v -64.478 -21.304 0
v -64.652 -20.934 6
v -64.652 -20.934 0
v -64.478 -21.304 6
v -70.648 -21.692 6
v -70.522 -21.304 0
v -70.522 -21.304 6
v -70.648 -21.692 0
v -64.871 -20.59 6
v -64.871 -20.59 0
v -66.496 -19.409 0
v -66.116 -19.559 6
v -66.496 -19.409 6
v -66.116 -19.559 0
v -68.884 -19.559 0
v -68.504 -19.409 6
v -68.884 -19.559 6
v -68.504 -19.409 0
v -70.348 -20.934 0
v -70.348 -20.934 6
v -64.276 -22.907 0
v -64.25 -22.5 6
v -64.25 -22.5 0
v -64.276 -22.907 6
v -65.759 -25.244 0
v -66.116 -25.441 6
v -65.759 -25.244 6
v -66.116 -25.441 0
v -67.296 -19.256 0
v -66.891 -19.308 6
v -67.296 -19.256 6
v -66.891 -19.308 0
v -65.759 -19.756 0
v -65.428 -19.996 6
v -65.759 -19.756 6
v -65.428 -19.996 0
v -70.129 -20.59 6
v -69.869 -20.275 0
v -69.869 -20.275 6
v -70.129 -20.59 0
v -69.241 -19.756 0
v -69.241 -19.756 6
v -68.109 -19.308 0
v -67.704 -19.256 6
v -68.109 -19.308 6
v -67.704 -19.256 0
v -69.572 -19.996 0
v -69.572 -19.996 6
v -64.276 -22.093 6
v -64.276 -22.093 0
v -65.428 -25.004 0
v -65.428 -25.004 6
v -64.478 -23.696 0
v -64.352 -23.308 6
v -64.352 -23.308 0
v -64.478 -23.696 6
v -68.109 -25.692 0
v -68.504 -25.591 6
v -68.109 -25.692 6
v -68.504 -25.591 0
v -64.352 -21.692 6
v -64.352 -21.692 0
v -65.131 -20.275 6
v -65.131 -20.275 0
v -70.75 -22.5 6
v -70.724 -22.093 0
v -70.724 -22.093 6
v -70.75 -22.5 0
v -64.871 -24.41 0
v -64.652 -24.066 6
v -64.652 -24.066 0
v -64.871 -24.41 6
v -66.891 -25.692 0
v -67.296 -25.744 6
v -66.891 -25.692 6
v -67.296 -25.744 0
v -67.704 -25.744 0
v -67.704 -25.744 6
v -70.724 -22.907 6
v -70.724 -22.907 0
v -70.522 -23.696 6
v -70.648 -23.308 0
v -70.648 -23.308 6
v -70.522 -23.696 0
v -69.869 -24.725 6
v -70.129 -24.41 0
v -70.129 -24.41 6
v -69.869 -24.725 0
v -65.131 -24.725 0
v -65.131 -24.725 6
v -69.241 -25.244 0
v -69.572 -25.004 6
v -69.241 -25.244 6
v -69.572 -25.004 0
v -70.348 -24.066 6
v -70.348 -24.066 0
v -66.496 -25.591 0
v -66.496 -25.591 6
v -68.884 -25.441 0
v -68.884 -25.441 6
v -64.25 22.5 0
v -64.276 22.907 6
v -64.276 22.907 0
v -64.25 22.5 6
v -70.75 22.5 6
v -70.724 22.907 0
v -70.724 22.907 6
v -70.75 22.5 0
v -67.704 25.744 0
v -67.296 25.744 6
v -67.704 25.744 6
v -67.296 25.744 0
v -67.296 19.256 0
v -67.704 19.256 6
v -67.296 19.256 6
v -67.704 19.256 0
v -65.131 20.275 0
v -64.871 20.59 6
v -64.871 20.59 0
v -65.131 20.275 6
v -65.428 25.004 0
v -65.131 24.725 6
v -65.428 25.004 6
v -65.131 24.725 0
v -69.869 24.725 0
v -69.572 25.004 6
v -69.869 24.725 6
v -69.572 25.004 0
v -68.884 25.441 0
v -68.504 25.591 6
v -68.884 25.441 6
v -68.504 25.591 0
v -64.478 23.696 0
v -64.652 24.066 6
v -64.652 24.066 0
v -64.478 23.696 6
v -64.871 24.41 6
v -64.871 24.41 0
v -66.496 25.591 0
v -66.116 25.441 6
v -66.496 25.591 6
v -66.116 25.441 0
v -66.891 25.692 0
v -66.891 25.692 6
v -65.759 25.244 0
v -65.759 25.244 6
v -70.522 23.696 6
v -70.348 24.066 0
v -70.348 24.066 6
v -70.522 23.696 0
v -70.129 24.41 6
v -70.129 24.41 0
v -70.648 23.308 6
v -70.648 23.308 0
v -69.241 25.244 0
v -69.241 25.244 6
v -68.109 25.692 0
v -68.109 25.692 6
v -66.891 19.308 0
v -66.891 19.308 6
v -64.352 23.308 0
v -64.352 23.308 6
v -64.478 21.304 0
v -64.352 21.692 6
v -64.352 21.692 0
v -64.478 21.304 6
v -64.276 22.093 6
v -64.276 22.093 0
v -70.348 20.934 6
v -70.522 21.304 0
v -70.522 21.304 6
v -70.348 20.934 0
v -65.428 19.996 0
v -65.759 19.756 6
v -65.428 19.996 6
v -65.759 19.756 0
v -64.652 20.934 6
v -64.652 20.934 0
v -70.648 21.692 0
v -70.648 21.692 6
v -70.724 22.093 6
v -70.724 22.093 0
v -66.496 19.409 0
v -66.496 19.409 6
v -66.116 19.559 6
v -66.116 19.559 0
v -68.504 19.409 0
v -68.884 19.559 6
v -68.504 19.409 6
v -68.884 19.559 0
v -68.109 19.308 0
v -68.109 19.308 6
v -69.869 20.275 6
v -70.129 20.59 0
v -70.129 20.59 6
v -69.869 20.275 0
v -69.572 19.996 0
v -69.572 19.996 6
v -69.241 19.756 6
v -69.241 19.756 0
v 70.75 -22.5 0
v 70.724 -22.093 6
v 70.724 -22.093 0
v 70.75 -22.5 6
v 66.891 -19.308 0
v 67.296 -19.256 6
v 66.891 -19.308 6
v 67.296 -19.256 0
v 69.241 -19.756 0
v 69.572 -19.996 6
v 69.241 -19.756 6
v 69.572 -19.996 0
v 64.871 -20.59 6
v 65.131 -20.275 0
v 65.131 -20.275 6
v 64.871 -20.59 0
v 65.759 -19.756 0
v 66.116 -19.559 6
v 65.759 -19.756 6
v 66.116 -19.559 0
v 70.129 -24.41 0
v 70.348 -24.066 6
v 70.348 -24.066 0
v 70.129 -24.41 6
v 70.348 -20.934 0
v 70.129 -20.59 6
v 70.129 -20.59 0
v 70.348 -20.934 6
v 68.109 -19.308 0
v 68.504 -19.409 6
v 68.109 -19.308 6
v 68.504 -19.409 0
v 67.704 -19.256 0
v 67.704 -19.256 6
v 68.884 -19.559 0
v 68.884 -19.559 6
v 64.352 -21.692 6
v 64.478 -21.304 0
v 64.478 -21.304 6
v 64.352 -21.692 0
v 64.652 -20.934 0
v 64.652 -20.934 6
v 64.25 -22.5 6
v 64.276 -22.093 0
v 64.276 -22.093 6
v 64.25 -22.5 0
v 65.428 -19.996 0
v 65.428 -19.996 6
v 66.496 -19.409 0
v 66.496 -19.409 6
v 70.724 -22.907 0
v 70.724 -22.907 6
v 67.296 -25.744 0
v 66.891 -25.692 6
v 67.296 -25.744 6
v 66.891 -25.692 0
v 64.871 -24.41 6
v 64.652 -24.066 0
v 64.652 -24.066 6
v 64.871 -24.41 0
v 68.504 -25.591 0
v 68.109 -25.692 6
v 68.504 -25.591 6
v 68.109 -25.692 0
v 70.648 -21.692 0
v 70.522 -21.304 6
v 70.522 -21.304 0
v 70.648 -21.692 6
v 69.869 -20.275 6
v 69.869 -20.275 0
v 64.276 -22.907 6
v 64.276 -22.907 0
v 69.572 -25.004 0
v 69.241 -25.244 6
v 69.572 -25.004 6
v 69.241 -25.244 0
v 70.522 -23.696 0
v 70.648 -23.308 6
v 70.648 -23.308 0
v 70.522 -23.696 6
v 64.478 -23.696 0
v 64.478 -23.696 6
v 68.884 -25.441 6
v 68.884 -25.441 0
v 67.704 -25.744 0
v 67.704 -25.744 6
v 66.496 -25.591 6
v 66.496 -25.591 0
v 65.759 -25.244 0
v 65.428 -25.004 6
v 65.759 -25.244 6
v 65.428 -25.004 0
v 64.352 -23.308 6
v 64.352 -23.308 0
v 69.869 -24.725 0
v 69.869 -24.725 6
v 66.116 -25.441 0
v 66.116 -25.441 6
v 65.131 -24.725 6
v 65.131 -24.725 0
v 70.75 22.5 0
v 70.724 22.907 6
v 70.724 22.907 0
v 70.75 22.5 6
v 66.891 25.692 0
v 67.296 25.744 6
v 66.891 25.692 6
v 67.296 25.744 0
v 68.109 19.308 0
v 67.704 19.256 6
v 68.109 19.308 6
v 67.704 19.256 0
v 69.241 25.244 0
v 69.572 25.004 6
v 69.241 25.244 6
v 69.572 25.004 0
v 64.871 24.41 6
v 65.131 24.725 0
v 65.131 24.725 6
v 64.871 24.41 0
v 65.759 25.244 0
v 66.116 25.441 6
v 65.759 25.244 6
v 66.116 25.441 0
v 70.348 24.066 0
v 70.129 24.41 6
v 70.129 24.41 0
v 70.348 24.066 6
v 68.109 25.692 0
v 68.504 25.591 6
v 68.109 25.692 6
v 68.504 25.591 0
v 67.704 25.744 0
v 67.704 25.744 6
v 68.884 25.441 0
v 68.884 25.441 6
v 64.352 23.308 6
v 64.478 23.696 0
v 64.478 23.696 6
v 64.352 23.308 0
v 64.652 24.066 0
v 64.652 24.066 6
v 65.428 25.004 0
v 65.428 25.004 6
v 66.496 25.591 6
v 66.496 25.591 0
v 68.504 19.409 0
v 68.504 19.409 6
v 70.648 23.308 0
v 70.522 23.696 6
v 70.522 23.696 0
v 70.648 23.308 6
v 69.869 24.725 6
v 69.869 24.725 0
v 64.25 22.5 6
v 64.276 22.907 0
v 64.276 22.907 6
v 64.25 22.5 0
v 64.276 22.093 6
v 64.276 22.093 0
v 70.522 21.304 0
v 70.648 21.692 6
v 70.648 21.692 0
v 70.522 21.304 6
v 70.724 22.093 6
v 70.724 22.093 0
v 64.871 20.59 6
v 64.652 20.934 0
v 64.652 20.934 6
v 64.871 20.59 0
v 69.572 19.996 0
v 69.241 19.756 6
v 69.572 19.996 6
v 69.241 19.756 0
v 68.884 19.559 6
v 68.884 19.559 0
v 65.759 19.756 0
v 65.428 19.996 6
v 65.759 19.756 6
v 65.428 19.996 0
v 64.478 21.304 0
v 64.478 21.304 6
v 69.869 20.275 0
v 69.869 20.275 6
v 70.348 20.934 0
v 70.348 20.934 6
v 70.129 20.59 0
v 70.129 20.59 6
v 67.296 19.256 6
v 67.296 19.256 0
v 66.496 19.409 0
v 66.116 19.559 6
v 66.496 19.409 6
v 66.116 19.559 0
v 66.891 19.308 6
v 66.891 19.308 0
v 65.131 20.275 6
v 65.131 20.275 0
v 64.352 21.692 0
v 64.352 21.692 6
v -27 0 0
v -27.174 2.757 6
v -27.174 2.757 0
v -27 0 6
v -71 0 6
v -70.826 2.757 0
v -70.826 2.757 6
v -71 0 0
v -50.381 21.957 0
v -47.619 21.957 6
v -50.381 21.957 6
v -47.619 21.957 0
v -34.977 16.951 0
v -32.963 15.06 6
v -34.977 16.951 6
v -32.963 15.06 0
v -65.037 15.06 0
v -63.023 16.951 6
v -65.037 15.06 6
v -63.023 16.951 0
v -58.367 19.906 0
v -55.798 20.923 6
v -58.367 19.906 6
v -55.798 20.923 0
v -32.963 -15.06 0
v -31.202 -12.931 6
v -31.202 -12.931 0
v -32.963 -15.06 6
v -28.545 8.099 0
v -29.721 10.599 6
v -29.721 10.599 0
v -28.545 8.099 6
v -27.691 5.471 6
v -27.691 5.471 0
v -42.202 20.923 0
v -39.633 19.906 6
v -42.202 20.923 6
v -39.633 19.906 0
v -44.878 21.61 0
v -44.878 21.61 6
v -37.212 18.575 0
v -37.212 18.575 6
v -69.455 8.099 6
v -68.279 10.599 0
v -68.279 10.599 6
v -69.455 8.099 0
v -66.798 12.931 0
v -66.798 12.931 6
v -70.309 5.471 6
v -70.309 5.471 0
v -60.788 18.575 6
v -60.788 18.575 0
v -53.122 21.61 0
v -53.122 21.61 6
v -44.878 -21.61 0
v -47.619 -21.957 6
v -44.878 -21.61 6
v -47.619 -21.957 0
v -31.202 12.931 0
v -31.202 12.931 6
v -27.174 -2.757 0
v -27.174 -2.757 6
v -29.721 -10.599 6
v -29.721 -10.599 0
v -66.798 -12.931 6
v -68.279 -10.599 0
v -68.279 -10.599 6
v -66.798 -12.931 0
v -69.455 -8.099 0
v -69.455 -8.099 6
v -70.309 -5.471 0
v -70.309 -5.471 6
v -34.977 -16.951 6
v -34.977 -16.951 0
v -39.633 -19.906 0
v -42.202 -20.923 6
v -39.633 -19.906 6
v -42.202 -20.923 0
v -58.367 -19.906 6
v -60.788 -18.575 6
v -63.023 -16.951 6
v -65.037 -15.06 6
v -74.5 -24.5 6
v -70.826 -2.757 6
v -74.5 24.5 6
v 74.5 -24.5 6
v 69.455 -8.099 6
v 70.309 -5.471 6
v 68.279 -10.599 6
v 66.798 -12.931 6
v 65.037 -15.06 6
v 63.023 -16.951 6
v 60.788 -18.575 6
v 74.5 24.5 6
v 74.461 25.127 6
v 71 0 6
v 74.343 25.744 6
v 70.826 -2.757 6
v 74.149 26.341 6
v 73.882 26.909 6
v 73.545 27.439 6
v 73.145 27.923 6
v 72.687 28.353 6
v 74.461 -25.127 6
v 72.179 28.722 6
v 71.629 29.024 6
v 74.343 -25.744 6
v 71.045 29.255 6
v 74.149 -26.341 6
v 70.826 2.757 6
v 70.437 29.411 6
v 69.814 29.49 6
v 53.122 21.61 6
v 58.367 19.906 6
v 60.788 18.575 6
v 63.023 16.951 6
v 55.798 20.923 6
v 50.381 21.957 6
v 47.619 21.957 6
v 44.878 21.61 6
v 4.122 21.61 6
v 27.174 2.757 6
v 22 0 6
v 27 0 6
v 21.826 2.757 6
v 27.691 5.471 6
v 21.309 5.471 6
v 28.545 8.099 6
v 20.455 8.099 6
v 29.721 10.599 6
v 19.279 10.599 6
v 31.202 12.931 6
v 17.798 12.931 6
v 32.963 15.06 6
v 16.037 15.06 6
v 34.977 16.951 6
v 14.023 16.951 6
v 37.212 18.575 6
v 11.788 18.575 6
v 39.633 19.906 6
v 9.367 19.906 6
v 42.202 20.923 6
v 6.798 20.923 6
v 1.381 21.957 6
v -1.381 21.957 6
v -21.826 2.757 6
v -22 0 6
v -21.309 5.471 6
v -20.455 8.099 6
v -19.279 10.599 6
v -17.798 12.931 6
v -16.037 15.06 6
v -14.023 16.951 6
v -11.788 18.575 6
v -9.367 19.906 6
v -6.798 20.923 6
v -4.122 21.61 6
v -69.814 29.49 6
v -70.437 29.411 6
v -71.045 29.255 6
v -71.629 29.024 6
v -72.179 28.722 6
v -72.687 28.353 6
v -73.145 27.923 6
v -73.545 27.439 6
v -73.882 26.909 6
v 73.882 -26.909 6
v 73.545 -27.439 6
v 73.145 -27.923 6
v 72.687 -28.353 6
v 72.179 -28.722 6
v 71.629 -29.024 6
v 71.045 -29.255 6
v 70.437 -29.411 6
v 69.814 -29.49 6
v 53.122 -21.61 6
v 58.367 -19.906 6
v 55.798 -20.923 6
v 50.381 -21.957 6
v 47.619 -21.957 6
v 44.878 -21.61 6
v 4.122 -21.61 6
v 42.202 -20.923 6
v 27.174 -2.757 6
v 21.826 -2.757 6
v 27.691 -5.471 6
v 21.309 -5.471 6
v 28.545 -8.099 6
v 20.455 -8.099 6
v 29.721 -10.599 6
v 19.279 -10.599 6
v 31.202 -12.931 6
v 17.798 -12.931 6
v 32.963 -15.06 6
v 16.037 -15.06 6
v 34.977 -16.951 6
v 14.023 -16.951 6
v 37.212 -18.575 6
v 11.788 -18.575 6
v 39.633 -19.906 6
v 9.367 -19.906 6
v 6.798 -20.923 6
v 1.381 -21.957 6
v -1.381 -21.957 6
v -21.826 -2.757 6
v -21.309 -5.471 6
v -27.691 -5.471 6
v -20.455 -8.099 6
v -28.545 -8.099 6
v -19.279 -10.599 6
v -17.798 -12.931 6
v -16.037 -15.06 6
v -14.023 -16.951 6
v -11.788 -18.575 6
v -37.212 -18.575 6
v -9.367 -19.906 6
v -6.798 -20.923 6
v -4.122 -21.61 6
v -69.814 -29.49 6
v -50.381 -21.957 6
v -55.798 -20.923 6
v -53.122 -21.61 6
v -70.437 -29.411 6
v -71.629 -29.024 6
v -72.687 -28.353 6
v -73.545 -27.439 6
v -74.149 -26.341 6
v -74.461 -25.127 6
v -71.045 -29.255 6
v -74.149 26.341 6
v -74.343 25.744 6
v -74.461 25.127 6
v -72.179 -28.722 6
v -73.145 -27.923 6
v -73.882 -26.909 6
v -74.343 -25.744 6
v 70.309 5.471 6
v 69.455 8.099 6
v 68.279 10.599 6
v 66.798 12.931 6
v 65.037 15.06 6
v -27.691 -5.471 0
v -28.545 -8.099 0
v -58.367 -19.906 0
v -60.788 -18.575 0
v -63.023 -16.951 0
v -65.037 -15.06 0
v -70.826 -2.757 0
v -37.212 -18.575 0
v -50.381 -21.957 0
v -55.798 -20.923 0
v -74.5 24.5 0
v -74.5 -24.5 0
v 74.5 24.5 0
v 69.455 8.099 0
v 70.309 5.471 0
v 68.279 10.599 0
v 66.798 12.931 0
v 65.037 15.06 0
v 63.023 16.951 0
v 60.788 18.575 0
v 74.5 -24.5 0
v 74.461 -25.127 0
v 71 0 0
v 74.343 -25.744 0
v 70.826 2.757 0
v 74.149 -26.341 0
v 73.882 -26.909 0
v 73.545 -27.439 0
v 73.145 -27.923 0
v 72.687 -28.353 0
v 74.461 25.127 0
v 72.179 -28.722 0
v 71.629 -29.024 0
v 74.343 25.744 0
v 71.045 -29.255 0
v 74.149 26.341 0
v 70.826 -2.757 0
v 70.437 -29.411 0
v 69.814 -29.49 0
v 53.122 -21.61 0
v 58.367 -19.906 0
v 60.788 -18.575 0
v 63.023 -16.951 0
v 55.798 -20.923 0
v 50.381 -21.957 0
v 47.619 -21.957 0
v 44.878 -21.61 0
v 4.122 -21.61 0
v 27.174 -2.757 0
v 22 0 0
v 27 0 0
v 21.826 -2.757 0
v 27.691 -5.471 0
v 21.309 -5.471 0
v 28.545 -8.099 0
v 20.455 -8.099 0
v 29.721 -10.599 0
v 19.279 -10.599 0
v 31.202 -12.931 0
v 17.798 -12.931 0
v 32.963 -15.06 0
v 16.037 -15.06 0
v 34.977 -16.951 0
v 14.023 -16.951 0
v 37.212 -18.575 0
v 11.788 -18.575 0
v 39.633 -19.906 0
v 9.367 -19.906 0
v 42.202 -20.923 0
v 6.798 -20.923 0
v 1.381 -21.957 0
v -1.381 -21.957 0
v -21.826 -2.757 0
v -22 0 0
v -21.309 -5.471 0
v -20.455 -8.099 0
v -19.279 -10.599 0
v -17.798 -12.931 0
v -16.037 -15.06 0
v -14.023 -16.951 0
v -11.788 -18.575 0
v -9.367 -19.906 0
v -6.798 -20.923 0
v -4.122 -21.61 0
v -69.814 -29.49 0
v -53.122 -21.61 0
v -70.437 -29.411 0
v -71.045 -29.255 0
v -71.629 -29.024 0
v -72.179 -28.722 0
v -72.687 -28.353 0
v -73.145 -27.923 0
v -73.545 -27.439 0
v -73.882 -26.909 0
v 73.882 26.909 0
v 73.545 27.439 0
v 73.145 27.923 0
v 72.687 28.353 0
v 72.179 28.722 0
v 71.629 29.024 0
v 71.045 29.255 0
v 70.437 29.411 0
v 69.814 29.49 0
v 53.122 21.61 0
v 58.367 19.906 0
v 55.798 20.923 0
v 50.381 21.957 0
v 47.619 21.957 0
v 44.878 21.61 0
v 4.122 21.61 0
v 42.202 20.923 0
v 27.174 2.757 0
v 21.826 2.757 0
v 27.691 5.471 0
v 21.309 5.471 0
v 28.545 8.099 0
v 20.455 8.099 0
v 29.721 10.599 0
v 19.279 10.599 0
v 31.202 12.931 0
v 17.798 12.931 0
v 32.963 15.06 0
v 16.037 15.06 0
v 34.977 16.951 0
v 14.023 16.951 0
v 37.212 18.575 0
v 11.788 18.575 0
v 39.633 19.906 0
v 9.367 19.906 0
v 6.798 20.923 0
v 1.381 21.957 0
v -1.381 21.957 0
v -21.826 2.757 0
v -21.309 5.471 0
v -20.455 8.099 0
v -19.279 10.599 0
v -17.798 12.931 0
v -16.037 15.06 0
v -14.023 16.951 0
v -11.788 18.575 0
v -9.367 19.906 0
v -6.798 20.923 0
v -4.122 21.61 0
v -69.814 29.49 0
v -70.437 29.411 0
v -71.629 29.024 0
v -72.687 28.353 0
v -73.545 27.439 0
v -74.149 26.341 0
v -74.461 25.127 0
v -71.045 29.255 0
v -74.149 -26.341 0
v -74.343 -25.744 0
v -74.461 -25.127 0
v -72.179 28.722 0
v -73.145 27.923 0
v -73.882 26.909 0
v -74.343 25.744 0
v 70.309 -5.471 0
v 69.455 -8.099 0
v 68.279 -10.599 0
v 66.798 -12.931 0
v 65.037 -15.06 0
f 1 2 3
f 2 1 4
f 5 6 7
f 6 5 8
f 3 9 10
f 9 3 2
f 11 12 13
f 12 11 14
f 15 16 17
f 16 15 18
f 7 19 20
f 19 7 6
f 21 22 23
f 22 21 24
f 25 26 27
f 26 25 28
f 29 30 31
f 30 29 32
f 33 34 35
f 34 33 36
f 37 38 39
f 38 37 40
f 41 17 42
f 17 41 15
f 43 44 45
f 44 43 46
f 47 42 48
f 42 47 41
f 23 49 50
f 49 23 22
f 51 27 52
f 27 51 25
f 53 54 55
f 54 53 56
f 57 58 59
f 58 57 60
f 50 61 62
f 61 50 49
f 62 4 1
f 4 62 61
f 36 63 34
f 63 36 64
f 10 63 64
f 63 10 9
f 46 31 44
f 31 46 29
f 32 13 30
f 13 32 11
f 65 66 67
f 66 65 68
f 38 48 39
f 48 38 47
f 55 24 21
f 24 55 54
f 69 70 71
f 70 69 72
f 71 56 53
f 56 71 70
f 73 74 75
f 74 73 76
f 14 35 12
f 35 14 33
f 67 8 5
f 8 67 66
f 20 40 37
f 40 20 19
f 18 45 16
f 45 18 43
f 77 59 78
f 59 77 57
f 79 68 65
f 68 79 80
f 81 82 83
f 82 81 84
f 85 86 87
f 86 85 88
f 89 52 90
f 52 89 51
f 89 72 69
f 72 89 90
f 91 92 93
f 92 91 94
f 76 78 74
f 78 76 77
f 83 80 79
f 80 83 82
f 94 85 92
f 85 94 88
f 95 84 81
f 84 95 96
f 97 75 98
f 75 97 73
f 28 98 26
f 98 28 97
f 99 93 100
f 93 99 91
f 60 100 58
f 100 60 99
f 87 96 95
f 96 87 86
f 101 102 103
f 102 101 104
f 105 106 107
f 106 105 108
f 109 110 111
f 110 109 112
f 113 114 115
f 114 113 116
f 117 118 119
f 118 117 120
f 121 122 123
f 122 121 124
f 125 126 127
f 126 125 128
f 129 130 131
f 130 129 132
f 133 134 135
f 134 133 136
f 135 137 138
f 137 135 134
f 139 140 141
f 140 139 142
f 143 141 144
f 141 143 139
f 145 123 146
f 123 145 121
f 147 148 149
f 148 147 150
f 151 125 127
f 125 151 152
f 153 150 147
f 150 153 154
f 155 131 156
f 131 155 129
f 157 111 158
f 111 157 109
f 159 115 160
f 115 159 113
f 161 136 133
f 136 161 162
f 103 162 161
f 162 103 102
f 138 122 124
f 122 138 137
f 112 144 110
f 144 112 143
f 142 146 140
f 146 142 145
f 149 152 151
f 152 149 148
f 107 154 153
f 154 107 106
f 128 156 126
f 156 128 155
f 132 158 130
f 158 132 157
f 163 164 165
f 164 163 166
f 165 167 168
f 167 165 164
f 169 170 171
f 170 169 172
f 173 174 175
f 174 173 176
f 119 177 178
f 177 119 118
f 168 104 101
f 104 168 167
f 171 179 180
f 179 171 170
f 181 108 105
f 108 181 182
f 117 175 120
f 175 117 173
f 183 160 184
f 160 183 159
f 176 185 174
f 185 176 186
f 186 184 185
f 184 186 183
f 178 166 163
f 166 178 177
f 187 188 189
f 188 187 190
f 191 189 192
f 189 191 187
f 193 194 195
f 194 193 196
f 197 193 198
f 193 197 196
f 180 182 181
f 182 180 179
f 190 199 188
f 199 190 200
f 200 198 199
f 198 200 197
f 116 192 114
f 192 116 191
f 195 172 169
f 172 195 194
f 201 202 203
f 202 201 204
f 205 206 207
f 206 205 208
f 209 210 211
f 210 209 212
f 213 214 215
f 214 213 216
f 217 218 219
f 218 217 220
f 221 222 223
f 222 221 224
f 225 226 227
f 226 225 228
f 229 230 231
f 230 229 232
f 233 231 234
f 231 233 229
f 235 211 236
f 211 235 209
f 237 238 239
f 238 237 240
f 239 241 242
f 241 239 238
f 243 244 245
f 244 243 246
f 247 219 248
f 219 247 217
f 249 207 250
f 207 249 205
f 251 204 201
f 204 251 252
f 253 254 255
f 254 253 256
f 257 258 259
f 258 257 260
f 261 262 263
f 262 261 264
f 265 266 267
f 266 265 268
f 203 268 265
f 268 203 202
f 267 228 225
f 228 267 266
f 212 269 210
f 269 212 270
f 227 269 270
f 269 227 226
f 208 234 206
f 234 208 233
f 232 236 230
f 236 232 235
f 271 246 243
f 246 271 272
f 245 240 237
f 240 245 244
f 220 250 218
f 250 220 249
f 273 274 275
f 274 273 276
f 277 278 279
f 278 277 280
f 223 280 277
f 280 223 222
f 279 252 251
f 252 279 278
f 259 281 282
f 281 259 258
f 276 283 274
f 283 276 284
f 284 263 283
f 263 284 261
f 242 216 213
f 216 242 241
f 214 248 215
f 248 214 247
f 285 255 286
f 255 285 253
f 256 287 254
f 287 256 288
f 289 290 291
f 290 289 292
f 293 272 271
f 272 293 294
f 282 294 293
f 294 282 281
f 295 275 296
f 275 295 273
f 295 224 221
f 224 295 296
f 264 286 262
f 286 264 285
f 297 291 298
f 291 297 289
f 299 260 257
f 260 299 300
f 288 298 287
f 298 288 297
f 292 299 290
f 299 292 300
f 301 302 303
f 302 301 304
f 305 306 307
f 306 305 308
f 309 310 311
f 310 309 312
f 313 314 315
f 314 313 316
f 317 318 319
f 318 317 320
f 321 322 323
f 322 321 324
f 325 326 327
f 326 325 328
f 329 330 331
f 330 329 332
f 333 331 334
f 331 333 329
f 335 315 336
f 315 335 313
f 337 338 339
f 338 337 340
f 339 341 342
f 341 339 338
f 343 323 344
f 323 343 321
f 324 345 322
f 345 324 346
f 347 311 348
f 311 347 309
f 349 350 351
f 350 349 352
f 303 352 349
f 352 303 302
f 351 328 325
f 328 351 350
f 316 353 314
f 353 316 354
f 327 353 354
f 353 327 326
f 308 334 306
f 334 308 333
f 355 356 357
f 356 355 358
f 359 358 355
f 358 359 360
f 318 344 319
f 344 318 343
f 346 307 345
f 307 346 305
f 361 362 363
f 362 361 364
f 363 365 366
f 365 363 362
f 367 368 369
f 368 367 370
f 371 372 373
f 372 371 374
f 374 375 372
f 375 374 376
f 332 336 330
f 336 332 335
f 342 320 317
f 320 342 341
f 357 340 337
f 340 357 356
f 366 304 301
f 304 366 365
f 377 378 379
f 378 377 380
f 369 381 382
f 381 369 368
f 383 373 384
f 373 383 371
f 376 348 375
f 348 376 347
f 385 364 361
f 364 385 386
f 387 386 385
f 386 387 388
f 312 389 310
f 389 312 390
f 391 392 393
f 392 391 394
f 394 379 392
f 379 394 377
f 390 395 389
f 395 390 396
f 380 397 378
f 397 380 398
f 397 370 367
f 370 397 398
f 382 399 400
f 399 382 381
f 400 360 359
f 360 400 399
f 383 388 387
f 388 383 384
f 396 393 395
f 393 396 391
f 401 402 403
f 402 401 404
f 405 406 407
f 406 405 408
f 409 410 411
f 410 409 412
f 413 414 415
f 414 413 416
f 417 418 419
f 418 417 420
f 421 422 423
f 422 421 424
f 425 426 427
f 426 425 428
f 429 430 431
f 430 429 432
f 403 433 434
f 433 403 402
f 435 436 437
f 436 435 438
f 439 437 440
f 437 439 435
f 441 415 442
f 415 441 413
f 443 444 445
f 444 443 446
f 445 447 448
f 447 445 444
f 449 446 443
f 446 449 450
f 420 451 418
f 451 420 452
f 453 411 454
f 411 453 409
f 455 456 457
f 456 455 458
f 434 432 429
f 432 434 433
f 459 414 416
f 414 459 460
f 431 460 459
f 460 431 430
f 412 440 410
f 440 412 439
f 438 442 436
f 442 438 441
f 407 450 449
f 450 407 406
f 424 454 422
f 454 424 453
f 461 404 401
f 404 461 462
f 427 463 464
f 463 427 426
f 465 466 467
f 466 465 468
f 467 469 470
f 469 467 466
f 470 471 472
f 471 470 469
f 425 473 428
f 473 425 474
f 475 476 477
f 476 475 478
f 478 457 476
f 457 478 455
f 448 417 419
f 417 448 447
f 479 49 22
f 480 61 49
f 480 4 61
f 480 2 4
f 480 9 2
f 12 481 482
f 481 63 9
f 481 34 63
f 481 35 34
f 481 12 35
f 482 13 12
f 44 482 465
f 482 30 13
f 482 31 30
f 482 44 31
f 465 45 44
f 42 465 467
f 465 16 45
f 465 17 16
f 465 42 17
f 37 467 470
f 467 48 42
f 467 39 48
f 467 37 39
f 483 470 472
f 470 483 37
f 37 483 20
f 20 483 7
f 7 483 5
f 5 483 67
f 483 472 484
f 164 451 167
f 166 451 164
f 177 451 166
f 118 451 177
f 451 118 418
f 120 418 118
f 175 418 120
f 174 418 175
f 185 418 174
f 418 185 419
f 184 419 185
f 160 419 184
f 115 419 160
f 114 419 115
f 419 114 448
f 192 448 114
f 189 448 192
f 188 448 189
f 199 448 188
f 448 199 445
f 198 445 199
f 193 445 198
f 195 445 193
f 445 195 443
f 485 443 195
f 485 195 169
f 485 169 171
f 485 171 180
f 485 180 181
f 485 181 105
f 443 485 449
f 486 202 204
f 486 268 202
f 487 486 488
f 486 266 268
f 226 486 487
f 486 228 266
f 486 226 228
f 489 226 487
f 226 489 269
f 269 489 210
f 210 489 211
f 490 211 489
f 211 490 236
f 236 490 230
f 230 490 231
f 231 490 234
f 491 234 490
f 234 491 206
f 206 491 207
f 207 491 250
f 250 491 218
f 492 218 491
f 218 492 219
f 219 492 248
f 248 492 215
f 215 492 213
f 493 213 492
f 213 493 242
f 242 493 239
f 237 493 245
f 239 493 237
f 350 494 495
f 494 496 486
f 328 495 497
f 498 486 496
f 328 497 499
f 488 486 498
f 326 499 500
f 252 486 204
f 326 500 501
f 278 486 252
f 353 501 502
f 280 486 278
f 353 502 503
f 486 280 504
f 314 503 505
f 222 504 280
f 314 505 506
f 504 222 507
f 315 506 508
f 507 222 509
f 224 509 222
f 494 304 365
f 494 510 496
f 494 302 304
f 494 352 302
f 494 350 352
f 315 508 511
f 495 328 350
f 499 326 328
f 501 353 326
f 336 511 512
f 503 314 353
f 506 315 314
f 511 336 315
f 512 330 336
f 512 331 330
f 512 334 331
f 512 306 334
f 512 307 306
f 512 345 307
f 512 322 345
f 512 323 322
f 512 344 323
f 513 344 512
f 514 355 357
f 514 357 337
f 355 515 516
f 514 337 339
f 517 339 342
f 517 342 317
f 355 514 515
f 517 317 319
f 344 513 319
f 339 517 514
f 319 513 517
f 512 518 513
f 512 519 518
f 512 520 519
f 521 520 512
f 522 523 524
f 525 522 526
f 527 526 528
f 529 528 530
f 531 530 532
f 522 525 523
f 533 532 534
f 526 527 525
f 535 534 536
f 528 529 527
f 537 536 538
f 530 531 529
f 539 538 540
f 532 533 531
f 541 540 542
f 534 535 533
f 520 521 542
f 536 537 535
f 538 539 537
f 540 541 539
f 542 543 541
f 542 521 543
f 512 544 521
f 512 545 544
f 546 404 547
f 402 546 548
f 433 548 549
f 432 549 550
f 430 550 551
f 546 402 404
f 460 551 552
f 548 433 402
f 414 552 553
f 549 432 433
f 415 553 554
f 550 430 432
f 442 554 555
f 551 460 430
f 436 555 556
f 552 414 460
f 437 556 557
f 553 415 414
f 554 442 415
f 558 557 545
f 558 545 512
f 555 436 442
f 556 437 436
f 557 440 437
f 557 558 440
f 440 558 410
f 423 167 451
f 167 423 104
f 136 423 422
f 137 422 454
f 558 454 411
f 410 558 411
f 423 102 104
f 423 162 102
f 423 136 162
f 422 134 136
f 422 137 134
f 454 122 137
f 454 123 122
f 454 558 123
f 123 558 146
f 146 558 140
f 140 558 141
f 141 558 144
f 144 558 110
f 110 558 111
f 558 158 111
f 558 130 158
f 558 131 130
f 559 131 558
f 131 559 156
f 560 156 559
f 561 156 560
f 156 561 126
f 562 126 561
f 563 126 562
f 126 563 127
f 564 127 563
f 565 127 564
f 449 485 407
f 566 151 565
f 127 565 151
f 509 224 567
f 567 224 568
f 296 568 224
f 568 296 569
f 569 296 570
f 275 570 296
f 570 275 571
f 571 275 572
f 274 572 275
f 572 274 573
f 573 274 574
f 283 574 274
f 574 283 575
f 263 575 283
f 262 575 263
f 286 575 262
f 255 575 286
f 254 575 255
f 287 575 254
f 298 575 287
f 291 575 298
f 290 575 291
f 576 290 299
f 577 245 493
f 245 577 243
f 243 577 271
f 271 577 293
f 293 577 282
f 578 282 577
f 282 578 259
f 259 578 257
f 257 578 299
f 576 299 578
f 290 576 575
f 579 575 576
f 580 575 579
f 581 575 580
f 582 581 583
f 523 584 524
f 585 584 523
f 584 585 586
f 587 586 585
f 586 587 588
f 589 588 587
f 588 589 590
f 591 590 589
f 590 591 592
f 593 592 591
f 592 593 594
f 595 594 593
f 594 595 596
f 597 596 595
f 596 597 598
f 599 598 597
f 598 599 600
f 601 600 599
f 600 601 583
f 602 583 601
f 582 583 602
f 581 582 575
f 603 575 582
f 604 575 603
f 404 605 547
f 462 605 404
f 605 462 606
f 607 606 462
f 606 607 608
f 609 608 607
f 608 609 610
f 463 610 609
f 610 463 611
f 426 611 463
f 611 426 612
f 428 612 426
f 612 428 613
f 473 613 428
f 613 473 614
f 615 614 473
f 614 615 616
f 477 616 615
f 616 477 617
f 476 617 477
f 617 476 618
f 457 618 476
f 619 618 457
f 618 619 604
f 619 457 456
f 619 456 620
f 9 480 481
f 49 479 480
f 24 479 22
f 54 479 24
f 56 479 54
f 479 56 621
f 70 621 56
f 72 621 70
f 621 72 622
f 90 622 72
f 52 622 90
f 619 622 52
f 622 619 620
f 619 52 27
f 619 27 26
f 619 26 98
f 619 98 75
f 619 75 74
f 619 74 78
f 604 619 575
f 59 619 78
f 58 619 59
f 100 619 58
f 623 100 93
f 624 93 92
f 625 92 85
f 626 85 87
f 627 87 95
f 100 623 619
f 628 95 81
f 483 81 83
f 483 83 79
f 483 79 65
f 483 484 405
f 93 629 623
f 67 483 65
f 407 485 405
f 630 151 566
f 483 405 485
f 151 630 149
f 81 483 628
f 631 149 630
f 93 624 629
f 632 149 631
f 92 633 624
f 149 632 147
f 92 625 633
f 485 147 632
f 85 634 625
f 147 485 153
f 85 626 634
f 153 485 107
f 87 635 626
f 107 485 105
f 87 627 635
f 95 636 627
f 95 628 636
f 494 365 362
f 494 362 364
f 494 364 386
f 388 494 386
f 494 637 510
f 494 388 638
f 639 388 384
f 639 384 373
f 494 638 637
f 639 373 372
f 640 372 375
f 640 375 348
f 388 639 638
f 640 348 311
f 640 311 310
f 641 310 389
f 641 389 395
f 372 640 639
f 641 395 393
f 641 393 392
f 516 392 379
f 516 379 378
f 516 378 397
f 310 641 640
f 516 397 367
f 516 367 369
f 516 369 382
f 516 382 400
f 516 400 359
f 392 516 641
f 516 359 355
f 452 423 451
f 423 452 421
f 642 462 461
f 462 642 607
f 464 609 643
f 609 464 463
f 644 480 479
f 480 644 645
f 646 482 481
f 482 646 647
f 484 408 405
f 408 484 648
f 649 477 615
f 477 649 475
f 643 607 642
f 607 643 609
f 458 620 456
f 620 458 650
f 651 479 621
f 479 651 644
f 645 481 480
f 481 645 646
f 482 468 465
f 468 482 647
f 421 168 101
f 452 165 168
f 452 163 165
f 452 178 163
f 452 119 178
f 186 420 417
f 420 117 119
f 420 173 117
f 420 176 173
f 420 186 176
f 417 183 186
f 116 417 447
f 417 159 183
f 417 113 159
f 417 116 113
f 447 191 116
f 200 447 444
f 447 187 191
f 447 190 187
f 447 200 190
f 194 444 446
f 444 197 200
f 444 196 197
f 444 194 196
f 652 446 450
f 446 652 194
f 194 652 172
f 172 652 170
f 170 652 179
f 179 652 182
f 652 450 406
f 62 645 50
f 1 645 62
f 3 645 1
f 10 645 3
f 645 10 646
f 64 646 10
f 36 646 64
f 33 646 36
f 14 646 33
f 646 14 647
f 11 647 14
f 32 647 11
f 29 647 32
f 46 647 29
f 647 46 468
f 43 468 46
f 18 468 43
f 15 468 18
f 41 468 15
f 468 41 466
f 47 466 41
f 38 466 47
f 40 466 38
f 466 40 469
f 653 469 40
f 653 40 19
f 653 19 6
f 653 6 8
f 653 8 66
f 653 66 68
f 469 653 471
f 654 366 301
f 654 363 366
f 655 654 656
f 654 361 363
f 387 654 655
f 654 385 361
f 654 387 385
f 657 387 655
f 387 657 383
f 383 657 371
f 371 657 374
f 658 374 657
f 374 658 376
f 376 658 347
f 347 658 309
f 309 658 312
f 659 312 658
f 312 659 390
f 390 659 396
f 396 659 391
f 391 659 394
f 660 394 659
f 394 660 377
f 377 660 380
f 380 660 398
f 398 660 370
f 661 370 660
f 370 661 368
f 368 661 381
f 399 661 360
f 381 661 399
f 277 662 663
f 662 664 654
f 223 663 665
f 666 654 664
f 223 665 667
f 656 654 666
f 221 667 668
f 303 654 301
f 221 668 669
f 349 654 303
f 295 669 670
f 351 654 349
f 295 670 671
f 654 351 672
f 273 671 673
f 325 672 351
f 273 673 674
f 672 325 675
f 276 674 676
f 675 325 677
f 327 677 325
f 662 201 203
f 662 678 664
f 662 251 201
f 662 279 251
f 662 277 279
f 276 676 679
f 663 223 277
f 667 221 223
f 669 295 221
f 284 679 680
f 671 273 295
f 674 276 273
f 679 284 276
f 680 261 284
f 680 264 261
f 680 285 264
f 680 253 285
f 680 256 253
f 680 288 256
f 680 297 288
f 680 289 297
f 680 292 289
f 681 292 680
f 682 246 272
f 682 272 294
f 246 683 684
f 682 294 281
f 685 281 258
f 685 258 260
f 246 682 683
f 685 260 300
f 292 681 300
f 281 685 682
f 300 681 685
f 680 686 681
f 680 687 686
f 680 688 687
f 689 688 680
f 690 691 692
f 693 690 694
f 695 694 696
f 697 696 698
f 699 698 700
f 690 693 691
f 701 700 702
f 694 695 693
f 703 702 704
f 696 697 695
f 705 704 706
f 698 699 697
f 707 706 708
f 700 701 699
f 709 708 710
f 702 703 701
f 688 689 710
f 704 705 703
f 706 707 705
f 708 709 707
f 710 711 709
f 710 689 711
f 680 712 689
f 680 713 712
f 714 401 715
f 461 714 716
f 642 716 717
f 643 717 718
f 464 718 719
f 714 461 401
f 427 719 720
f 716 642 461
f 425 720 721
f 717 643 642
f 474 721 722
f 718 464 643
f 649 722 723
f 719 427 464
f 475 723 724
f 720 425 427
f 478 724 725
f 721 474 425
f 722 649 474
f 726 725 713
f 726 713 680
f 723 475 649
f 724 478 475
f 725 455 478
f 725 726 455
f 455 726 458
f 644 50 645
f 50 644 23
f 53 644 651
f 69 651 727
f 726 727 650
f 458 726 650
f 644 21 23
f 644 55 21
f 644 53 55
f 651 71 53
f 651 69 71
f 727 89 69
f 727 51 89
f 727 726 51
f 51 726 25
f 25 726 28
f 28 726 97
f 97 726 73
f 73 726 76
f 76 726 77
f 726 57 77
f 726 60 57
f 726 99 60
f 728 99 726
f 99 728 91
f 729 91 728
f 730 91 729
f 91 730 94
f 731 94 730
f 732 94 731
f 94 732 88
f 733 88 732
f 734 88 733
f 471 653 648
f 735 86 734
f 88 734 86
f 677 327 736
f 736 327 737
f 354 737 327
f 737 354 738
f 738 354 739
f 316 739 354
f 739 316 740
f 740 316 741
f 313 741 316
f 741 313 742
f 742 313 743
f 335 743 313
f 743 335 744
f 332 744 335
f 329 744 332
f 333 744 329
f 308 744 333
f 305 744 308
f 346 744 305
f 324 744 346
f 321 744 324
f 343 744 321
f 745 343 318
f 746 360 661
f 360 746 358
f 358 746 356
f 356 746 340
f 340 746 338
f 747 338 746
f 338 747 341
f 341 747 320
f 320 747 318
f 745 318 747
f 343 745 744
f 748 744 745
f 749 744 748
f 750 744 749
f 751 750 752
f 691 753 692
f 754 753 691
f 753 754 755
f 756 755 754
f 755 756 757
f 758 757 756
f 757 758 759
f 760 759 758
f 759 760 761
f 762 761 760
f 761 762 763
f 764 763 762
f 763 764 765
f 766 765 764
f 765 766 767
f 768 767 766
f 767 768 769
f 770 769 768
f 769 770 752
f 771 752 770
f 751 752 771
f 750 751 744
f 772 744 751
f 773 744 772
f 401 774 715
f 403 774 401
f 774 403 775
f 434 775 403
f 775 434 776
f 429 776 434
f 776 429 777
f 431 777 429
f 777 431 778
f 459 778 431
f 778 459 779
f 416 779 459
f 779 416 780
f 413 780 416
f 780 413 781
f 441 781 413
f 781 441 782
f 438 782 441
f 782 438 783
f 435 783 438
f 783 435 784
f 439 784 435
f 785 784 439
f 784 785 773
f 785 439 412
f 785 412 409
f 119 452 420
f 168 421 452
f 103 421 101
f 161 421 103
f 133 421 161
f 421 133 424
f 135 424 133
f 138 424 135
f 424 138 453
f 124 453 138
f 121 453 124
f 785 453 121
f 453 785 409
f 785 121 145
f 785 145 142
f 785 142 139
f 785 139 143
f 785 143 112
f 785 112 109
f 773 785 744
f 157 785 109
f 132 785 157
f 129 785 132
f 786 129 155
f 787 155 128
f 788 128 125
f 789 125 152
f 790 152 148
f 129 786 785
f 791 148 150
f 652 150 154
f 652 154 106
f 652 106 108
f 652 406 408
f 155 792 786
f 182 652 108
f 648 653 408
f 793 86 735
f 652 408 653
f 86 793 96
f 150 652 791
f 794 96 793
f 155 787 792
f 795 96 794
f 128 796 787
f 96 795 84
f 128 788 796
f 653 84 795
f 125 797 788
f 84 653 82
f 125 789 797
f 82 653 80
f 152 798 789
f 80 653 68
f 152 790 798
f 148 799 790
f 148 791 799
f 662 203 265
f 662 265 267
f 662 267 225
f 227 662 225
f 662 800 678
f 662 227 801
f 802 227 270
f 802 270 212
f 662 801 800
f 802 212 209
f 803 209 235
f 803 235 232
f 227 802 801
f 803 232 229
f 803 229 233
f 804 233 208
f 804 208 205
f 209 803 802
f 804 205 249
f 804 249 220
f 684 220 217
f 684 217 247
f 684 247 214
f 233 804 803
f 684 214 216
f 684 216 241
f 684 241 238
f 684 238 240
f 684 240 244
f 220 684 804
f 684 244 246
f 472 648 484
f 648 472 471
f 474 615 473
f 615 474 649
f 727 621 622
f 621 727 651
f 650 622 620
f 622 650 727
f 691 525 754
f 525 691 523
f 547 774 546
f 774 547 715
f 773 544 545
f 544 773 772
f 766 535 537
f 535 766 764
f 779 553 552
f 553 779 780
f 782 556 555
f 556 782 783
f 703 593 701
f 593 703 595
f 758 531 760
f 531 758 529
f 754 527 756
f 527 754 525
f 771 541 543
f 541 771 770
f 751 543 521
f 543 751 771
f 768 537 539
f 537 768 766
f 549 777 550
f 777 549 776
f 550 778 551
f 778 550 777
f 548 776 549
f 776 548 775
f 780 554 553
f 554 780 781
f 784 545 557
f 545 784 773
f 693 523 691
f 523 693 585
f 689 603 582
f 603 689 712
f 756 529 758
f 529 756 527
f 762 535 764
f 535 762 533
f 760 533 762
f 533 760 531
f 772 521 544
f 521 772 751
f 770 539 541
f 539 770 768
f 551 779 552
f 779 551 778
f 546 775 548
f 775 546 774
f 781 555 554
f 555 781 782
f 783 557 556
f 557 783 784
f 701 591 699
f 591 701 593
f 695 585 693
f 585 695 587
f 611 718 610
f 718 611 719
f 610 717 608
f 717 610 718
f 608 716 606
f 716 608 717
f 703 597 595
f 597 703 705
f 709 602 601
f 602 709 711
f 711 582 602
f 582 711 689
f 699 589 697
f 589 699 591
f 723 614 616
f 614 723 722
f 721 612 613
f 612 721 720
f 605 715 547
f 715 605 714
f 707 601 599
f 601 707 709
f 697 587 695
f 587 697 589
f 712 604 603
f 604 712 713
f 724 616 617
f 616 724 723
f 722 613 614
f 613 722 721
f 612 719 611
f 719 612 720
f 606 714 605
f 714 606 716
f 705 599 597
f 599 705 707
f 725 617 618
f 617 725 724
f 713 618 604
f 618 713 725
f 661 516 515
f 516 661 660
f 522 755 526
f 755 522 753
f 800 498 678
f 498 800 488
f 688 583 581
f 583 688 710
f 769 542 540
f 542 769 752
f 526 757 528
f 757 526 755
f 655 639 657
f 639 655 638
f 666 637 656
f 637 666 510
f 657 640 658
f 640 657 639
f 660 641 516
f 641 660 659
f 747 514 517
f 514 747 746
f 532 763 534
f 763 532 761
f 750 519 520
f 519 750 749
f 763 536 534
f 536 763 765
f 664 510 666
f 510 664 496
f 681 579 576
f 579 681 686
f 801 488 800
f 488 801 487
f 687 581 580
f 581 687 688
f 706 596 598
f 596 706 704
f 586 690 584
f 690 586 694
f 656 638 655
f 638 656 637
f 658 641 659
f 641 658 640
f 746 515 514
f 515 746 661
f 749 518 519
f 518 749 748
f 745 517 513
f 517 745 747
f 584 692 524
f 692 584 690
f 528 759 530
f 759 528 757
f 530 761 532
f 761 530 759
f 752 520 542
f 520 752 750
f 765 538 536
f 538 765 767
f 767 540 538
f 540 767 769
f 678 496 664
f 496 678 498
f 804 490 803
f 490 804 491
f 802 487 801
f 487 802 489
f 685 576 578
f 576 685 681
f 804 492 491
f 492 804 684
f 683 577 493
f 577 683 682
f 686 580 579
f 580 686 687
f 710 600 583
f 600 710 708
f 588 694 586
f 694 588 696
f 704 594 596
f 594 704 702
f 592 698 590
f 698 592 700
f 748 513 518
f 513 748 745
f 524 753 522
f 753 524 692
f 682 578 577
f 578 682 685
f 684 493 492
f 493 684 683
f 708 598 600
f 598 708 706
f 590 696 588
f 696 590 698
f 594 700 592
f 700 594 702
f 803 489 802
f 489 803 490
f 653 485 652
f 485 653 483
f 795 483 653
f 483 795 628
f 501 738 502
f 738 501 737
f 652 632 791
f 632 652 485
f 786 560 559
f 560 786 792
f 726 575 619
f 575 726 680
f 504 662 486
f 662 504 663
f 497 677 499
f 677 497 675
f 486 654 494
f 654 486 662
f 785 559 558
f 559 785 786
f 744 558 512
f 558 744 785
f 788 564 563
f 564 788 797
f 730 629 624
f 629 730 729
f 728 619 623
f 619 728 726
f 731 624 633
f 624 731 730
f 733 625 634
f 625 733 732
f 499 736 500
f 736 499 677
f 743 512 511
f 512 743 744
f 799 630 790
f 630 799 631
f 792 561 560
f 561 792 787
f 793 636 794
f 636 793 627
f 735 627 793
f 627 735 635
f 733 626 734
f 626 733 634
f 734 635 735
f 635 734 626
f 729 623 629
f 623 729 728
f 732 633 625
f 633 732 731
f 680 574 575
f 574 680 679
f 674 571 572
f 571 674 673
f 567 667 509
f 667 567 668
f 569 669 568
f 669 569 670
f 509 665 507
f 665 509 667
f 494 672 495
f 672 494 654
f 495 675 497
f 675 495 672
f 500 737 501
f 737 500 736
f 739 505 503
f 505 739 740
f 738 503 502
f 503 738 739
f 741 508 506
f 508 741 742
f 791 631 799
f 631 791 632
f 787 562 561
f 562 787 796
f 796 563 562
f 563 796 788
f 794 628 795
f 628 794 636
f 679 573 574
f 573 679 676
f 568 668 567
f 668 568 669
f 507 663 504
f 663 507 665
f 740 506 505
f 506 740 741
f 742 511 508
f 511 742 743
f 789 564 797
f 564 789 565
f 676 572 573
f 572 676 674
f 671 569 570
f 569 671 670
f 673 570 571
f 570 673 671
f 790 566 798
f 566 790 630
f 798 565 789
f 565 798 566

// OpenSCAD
$fn = 50;


difference() {
	union() {
		hull() {
			translate(v = [-69.5000000000, 24.5000000000, 0]) {
				cylinder(h = 6, r = 5);
			}
			translate(v = [69.5000000000, 24.5000000000, 0]) {
				cylinder(h = 6, r = 5);
			}
			translate(v = [-69.5000000000, -24.5000000000, 0]) {
				cylinder(h = 6, r = 5);
			}
			translate(v = [69.5000000000, -24.5000000000, 0]) {
				cylinder(h = 6, r = 5);
			}
		}
	}
	union() {
		#translate(v = [-67.5000000000, -22.5000000000, -100.0000000000]) {
			cylinder(h = 200, r = 3.2500000000);
		}
		#translate(v = [-67.5000000000, 22.5000000000, -100.0000000000]) {
			cylinder(h = 200, r = 3.2500000000);
		}
		#translate(v = [67.5000000000, -22.5000000000, -100.0000000000]) {
			cylinder(h = 200, r = 3.2500000000);
		}
		#translate(v = [67.5000000000, 22.5000000000, -100.0000000000]) {
			cylinder(h = 200, r = 3.2500000000);
		}
		#translate(v = [-49.0000000000, 0, 0]) {
			cylinder(h = 6, r = 22.0000000000);
		}
		#cylinder(h = 6, r = 22.0000000000);
		#translate(v = [49.0000000000, 0, 0]) {
			cylinder(h = 6, r = 22.0000000000);
		}
	}
}
